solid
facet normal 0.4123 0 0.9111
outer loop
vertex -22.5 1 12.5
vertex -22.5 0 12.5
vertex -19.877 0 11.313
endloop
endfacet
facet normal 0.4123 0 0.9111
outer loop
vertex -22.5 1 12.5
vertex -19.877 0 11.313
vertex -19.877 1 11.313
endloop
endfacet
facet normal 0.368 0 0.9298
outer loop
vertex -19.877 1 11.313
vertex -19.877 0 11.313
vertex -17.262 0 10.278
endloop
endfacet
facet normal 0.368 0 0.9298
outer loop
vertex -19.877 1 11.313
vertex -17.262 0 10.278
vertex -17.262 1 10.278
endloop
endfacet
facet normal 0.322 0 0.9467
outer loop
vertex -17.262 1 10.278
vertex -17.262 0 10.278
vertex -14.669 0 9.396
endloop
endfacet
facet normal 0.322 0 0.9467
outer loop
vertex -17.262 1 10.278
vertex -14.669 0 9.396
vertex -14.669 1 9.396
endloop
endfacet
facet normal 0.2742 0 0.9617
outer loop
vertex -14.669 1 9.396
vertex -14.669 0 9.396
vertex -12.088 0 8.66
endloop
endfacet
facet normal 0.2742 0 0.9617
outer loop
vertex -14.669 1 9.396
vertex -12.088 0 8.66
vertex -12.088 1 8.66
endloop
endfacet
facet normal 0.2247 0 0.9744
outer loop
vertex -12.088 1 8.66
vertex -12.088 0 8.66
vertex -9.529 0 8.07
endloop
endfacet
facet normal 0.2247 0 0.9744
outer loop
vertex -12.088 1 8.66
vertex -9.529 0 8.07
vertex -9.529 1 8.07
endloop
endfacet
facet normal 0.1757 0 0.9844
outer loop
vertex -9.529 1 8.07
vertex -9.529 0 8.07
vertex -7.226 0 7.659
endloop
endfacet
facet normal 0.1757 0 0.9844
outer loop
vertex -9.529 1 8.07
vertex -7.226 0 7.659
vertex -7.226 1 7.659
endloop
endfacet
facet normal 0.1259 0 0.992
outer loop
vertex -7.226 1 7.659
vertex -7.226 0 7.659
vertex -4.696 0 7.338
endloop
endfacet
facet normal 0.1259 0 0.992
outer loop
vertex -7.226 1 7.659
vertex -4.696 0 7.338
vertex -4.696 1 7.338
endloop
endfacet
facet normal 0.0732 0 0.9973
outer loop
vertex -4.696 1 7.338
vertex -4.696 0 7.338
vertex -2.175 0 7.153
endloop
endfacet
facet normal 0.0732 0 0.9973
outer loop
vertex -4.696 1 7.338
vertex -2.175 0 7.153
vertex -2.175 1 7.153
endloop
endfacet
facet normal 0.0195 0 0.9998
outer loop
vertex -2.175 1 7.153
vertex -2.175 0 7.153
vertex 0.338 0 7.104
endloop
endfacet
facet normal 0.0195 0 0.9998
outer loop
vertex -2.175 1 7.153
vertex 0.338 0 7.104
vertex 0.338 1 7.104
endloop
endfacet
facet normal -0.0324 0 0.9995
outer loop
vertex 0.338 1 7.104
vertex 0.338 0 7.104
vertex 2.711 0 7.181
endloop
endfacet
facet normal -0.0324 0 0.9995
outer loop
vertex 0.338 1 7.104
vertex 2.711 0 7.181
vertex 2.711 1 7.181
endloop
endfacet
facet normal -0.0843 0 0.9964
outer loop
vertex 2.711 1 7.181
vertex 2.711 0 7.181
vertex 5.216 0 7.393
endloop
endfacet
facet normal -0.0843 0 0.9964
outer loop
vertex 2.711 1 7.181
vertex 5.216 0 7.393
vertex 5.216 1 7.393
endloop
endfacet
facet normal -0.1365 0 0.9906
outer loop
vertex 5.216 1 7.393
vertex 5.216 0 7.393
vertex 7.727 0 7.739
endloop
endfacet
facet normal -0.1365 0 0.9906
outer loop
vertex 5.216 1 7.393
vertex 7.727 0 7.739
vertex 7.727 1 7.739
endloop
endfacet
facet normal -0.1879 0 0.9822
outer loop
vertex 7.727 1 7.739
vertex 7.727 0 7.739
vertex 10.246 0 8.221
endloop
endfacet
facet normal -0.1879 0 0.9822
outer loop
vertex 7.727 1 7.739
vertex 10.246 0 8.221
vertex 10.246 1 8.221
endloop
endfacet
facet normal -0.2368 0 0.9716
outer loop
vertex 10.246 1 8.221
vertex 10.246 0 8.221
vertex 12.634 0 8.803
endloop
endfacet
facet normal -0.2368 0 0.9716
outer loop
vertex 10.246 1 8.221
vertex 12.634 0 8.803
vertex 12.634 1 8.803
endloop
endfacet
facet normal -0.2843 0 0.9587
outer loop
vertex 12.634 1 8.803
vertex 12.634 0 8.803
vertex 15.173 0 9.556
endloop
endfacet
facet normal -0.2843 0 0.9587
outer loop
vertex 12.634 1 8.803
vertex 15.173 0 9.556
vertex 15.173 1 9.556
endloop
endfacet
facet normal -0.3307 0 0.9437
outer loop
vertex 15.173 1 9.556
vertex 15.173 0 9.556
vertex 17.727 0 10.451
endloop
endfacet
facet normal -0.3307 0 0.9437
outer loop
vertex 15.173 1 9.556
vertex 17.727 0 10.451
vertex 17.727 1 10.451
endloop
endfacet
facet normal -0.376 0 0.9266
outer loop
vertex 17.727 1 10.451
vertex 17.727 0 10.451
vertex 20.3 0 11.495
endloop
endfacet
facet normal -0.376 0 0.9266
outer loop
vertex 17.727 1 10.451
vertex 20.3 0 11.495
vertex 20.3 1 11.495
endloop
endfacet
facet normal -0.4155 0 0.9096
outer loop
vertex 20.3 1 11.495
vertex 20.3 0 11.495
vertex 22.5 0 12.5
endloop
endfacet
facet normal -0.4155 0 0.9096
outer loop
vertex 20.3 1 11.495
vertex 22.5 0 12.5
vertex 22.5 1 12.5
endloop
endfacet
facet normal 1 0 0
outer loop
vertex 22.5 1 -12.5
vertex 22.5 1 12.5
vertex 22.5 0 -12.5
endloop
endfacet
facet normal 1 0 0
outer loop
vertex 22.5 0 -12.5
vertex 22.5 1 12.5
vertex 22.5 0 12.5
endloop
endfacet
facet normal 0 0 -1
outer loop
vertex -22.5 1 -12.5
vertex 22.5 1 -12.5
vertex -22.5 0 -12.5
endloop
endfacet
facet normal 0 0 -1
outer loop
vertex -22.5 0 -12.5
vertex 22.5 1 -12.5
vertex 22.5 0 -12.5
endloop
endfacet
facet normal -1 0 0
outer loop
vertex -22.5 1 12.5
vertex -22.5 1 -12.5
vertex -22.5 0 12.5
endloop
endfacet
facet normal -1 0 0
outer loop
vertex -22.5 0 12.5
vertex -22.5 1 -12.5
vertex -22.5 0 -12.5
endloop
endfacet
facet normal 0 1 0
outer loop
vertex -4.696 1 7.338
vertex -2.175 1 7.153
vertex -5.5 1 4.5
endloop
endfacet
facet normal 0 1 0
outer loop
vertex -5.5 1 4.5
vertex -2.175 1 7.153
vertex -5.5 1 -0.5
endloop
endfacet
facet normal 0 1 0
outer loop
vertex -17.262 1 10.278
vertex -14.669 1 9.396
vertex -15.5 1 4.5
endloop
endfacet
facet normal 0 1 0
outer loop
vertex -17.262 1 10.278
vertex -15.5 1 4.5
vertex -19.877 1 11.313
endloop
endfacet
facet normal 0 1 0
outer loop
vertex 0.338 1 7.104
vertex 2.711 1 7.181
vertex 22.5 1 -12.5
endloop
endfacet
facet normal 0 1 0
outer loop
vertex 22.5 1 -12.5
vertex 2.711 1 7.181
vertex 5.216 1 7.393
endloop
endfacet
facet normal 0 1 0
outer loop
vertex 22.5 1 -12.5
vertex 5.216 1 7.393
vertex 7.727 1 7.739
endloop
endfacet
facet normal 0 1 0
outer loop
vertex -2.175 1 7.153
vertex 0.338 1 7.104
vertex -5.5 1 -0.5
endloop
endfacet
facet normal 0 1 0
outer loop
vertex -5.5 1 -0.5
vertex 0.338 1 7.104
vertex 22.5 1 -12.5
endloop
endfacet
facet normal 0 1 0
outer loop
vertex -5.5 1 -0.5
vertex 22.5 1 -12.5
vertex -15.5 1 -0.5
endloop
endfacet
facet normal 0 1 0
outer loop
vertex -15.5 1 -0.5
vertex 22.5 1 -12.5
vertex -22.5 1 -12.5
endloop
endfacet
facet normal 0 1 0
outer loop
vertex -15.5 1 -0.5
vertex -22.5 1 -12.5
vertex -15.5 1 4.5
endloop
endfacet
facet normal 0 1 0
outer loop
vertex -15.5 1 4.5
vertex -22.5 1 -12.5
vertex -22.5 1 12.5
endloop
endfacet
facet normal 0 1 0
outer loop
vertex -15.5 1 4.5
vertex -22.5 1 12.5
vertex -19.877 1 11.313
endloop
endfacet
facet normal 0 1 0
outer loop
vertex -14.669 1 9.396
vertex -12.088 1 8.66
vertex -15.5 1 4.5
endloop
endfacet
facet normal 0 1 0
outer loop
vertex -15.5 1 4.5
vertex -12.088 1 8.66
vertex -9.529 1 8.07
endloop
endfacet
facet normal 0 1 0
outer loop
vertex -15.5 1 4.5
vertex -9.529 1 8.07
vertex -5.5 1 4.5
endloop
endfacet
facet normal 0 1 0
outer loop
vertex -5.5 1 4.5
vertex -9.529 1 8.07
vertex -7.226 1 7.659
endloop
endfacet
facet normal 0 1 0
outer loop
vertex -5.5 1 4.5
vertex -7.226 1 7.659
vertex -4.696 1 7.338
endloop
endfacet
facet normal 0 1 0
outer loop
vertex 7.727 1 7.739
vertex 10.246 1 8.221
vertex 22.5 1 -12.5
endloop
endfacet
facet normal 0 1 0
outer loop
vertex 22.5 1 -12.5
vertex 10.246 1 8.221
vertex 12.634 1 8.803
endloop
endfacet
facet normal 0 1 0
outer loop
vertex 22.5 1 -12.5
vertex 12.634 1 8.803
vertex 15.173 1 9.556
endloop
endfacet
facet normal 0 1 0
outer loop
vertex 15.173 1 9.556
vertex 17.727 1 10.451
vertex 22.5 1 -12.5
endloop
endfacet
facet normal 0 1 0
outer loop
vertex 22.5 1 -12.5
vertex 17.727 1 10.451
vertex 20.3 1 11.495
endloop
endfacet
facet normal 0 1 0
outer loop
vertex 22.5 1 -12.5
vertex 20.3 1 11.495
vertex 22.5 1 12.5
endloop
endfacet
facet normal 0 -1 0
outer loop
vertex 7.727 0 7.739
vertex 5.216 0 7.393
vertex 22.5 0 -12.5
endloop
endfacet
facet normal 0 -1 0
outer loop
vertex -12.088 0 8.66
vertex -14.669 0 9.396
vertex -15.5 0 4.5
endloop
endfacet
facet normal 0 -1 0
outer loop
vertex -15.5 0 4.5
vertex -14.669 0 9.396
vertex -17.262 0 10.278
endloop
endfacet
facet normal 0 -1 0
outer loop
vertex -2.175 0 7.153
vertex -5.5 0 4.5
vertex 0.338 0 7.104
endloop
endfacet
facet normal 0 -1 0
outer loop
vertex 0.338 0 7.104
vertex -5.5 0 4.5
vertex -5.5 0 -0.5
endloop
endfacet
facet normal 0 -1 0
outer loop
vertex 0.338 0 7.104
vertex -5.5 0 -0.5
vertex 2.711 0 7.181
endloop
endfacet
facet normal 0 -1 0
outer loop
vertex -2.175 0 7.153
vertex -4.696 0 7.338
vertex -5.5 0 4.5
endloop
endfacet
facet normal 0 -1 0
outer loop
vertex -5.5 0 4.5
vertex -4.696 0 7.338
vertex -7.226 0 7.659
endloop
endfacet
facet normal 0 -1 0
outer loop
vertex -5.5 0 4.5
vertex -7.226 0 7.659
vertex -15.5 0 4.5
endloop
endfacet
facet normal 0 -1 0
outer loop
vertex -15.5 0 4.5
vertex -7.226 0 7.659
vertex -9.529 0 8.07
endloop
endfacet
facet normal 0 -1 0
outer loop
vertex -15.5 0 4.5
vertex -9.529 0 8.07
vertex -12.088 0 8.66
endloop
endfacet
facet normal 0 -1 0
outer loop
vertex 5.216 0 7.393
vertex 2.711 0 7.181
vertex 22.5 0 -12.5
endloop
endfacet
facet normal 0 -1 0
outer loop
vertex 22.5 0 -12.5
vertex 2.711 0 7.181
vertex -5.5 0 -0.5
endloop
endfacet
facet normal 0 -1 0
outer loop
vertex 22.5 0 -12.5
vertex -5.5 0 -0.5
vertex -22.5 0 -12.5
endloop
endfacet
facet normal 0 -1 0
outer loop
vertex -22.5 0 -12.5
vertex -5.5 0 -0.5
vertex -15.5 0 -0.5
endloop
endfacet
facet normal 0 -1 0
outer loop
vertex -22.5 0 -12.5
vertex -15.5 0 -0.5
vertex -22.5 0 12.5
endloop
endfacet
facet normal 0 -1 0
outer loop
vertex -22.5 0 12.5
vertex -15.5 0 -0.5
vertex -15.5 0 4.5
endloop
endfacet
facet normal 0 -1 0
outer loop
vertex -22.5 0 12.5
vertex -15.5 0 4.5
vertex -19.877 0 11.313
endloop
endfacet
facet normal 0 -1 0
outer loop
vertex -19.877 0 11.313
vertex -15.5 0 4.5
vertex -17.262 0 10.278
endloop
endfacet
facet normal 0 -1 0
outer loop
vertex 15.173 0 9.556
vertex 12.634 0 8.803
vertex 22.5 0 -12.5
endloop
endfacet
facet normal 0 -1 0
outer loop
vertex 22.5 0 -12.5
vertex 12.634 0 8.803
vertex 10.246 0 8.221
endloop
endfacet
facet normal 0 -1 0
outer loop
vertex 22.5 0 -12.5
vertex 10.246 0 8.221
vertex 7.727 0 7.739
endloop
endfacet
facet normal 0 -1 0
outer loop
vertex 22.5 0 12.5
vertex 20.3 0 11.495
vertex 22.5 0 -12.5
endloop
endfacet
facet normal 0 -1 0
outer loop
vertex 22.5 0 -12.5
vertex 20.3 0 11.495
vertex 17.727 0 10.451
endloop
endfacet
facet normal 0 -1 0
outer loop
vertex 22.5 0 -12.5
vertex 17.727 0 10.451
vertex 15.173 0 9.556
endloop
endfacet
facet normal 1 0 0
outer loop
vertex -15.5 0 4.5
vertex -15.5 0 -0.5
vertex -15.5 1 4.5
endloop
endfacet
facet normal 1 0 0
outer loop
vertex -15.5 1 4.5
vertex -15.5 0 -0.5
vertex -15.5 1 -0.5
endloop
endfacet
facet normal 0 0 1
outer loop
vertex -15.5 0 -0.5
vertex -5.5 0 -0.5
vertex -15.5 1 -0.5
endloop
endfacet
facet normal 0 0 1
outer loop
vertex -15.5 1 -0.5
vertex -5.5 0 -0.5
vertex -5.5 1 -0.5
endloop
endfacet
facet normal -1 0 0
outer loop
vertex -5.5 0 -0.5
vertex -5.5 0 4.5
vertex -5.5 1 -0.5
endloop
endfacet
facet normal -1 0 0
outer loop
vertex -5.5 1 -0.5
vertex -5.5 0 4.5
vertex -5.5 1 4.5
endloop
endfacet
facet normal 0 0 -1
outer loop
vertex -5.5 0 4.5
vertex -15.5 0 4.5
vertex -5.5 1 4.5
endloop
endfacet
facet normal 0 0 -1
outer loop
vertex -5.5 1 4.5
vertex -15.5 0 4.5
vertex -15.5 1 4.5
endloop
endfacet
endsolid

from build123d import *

# Parameters (mm, degrees)
BOSS_EXTRUDE1_DEPTH = 1
SKETCH2_W           = 10
SKETCH2_H           = 5
CUT_EXTRUDE1_DEPTH  = 1


with BuildPart() as part:
    # Sketch1 → Boss-Extrude1 (new body)
    with BuildSketch(Plane(origin=(0, 0, 0), x_dir=(1, 0, 0), z_dir=(0, 1, 0))):
        with BuildLine():
            Line((-22.5, -12.500000317), (-22.5, 12.500000317))
            Line((-22.5, 12.500000317), (22.5, 12.500000317))
            Line((22.5, 12.500000317), (22.5, -12.499999683))
            add(Edge.make_bspline(
                [(-22.5, -12.500000317), (-22.439792168, -12.471062497), (-21.720318389, -12.126671398), (-20.033278548, -11.358209685), (-16.487166751, -9.929593391), (-11.649258831, -8.428412522), (-5.831090838, -7.344665325), (-7.7e-08, -6.981224033), (5.831090693, -7.344665161), (11.649258717, -8.428412194), (16.487166679, -9.929592927), (20.033278516, -11.358209122), (21.720318379, -12.126670787), (22.439792167, -12.471061866), (22.5, -12.499999683)],
                knots=[0.029712498, 0.029712498, 0.029712498, 0.029712498, 0.033515652, 0.075187399, 0.135874913, 0.257249942, 0.378624971, 0.5, 0.621375029, 0.742750058, 0.864125087, 0.924812601, 0.966484348, 0.970287502, 0.970287502, 0.970287502, 0.970287502], degree=3))
        make_face()
    extrude(amount=BOSS_EXTRUDE1_DEPTH)

    # Sketch2 → Cut-Extrude1 (cut)
    with BuildSketch(Plane(origin=(0, 1, 0), x_dir=(1, 0, 0), z_dir=(0, 1, 0))):
        with Locations((-10.5, -1.999999683)):
            Rectangle(SKETCH2_W, SKETCH2_H)
    extrude(amount=-CUT_EXTRUDE1_DEPTH, mode=Mode.SUBTRACT)


solid = part.part
